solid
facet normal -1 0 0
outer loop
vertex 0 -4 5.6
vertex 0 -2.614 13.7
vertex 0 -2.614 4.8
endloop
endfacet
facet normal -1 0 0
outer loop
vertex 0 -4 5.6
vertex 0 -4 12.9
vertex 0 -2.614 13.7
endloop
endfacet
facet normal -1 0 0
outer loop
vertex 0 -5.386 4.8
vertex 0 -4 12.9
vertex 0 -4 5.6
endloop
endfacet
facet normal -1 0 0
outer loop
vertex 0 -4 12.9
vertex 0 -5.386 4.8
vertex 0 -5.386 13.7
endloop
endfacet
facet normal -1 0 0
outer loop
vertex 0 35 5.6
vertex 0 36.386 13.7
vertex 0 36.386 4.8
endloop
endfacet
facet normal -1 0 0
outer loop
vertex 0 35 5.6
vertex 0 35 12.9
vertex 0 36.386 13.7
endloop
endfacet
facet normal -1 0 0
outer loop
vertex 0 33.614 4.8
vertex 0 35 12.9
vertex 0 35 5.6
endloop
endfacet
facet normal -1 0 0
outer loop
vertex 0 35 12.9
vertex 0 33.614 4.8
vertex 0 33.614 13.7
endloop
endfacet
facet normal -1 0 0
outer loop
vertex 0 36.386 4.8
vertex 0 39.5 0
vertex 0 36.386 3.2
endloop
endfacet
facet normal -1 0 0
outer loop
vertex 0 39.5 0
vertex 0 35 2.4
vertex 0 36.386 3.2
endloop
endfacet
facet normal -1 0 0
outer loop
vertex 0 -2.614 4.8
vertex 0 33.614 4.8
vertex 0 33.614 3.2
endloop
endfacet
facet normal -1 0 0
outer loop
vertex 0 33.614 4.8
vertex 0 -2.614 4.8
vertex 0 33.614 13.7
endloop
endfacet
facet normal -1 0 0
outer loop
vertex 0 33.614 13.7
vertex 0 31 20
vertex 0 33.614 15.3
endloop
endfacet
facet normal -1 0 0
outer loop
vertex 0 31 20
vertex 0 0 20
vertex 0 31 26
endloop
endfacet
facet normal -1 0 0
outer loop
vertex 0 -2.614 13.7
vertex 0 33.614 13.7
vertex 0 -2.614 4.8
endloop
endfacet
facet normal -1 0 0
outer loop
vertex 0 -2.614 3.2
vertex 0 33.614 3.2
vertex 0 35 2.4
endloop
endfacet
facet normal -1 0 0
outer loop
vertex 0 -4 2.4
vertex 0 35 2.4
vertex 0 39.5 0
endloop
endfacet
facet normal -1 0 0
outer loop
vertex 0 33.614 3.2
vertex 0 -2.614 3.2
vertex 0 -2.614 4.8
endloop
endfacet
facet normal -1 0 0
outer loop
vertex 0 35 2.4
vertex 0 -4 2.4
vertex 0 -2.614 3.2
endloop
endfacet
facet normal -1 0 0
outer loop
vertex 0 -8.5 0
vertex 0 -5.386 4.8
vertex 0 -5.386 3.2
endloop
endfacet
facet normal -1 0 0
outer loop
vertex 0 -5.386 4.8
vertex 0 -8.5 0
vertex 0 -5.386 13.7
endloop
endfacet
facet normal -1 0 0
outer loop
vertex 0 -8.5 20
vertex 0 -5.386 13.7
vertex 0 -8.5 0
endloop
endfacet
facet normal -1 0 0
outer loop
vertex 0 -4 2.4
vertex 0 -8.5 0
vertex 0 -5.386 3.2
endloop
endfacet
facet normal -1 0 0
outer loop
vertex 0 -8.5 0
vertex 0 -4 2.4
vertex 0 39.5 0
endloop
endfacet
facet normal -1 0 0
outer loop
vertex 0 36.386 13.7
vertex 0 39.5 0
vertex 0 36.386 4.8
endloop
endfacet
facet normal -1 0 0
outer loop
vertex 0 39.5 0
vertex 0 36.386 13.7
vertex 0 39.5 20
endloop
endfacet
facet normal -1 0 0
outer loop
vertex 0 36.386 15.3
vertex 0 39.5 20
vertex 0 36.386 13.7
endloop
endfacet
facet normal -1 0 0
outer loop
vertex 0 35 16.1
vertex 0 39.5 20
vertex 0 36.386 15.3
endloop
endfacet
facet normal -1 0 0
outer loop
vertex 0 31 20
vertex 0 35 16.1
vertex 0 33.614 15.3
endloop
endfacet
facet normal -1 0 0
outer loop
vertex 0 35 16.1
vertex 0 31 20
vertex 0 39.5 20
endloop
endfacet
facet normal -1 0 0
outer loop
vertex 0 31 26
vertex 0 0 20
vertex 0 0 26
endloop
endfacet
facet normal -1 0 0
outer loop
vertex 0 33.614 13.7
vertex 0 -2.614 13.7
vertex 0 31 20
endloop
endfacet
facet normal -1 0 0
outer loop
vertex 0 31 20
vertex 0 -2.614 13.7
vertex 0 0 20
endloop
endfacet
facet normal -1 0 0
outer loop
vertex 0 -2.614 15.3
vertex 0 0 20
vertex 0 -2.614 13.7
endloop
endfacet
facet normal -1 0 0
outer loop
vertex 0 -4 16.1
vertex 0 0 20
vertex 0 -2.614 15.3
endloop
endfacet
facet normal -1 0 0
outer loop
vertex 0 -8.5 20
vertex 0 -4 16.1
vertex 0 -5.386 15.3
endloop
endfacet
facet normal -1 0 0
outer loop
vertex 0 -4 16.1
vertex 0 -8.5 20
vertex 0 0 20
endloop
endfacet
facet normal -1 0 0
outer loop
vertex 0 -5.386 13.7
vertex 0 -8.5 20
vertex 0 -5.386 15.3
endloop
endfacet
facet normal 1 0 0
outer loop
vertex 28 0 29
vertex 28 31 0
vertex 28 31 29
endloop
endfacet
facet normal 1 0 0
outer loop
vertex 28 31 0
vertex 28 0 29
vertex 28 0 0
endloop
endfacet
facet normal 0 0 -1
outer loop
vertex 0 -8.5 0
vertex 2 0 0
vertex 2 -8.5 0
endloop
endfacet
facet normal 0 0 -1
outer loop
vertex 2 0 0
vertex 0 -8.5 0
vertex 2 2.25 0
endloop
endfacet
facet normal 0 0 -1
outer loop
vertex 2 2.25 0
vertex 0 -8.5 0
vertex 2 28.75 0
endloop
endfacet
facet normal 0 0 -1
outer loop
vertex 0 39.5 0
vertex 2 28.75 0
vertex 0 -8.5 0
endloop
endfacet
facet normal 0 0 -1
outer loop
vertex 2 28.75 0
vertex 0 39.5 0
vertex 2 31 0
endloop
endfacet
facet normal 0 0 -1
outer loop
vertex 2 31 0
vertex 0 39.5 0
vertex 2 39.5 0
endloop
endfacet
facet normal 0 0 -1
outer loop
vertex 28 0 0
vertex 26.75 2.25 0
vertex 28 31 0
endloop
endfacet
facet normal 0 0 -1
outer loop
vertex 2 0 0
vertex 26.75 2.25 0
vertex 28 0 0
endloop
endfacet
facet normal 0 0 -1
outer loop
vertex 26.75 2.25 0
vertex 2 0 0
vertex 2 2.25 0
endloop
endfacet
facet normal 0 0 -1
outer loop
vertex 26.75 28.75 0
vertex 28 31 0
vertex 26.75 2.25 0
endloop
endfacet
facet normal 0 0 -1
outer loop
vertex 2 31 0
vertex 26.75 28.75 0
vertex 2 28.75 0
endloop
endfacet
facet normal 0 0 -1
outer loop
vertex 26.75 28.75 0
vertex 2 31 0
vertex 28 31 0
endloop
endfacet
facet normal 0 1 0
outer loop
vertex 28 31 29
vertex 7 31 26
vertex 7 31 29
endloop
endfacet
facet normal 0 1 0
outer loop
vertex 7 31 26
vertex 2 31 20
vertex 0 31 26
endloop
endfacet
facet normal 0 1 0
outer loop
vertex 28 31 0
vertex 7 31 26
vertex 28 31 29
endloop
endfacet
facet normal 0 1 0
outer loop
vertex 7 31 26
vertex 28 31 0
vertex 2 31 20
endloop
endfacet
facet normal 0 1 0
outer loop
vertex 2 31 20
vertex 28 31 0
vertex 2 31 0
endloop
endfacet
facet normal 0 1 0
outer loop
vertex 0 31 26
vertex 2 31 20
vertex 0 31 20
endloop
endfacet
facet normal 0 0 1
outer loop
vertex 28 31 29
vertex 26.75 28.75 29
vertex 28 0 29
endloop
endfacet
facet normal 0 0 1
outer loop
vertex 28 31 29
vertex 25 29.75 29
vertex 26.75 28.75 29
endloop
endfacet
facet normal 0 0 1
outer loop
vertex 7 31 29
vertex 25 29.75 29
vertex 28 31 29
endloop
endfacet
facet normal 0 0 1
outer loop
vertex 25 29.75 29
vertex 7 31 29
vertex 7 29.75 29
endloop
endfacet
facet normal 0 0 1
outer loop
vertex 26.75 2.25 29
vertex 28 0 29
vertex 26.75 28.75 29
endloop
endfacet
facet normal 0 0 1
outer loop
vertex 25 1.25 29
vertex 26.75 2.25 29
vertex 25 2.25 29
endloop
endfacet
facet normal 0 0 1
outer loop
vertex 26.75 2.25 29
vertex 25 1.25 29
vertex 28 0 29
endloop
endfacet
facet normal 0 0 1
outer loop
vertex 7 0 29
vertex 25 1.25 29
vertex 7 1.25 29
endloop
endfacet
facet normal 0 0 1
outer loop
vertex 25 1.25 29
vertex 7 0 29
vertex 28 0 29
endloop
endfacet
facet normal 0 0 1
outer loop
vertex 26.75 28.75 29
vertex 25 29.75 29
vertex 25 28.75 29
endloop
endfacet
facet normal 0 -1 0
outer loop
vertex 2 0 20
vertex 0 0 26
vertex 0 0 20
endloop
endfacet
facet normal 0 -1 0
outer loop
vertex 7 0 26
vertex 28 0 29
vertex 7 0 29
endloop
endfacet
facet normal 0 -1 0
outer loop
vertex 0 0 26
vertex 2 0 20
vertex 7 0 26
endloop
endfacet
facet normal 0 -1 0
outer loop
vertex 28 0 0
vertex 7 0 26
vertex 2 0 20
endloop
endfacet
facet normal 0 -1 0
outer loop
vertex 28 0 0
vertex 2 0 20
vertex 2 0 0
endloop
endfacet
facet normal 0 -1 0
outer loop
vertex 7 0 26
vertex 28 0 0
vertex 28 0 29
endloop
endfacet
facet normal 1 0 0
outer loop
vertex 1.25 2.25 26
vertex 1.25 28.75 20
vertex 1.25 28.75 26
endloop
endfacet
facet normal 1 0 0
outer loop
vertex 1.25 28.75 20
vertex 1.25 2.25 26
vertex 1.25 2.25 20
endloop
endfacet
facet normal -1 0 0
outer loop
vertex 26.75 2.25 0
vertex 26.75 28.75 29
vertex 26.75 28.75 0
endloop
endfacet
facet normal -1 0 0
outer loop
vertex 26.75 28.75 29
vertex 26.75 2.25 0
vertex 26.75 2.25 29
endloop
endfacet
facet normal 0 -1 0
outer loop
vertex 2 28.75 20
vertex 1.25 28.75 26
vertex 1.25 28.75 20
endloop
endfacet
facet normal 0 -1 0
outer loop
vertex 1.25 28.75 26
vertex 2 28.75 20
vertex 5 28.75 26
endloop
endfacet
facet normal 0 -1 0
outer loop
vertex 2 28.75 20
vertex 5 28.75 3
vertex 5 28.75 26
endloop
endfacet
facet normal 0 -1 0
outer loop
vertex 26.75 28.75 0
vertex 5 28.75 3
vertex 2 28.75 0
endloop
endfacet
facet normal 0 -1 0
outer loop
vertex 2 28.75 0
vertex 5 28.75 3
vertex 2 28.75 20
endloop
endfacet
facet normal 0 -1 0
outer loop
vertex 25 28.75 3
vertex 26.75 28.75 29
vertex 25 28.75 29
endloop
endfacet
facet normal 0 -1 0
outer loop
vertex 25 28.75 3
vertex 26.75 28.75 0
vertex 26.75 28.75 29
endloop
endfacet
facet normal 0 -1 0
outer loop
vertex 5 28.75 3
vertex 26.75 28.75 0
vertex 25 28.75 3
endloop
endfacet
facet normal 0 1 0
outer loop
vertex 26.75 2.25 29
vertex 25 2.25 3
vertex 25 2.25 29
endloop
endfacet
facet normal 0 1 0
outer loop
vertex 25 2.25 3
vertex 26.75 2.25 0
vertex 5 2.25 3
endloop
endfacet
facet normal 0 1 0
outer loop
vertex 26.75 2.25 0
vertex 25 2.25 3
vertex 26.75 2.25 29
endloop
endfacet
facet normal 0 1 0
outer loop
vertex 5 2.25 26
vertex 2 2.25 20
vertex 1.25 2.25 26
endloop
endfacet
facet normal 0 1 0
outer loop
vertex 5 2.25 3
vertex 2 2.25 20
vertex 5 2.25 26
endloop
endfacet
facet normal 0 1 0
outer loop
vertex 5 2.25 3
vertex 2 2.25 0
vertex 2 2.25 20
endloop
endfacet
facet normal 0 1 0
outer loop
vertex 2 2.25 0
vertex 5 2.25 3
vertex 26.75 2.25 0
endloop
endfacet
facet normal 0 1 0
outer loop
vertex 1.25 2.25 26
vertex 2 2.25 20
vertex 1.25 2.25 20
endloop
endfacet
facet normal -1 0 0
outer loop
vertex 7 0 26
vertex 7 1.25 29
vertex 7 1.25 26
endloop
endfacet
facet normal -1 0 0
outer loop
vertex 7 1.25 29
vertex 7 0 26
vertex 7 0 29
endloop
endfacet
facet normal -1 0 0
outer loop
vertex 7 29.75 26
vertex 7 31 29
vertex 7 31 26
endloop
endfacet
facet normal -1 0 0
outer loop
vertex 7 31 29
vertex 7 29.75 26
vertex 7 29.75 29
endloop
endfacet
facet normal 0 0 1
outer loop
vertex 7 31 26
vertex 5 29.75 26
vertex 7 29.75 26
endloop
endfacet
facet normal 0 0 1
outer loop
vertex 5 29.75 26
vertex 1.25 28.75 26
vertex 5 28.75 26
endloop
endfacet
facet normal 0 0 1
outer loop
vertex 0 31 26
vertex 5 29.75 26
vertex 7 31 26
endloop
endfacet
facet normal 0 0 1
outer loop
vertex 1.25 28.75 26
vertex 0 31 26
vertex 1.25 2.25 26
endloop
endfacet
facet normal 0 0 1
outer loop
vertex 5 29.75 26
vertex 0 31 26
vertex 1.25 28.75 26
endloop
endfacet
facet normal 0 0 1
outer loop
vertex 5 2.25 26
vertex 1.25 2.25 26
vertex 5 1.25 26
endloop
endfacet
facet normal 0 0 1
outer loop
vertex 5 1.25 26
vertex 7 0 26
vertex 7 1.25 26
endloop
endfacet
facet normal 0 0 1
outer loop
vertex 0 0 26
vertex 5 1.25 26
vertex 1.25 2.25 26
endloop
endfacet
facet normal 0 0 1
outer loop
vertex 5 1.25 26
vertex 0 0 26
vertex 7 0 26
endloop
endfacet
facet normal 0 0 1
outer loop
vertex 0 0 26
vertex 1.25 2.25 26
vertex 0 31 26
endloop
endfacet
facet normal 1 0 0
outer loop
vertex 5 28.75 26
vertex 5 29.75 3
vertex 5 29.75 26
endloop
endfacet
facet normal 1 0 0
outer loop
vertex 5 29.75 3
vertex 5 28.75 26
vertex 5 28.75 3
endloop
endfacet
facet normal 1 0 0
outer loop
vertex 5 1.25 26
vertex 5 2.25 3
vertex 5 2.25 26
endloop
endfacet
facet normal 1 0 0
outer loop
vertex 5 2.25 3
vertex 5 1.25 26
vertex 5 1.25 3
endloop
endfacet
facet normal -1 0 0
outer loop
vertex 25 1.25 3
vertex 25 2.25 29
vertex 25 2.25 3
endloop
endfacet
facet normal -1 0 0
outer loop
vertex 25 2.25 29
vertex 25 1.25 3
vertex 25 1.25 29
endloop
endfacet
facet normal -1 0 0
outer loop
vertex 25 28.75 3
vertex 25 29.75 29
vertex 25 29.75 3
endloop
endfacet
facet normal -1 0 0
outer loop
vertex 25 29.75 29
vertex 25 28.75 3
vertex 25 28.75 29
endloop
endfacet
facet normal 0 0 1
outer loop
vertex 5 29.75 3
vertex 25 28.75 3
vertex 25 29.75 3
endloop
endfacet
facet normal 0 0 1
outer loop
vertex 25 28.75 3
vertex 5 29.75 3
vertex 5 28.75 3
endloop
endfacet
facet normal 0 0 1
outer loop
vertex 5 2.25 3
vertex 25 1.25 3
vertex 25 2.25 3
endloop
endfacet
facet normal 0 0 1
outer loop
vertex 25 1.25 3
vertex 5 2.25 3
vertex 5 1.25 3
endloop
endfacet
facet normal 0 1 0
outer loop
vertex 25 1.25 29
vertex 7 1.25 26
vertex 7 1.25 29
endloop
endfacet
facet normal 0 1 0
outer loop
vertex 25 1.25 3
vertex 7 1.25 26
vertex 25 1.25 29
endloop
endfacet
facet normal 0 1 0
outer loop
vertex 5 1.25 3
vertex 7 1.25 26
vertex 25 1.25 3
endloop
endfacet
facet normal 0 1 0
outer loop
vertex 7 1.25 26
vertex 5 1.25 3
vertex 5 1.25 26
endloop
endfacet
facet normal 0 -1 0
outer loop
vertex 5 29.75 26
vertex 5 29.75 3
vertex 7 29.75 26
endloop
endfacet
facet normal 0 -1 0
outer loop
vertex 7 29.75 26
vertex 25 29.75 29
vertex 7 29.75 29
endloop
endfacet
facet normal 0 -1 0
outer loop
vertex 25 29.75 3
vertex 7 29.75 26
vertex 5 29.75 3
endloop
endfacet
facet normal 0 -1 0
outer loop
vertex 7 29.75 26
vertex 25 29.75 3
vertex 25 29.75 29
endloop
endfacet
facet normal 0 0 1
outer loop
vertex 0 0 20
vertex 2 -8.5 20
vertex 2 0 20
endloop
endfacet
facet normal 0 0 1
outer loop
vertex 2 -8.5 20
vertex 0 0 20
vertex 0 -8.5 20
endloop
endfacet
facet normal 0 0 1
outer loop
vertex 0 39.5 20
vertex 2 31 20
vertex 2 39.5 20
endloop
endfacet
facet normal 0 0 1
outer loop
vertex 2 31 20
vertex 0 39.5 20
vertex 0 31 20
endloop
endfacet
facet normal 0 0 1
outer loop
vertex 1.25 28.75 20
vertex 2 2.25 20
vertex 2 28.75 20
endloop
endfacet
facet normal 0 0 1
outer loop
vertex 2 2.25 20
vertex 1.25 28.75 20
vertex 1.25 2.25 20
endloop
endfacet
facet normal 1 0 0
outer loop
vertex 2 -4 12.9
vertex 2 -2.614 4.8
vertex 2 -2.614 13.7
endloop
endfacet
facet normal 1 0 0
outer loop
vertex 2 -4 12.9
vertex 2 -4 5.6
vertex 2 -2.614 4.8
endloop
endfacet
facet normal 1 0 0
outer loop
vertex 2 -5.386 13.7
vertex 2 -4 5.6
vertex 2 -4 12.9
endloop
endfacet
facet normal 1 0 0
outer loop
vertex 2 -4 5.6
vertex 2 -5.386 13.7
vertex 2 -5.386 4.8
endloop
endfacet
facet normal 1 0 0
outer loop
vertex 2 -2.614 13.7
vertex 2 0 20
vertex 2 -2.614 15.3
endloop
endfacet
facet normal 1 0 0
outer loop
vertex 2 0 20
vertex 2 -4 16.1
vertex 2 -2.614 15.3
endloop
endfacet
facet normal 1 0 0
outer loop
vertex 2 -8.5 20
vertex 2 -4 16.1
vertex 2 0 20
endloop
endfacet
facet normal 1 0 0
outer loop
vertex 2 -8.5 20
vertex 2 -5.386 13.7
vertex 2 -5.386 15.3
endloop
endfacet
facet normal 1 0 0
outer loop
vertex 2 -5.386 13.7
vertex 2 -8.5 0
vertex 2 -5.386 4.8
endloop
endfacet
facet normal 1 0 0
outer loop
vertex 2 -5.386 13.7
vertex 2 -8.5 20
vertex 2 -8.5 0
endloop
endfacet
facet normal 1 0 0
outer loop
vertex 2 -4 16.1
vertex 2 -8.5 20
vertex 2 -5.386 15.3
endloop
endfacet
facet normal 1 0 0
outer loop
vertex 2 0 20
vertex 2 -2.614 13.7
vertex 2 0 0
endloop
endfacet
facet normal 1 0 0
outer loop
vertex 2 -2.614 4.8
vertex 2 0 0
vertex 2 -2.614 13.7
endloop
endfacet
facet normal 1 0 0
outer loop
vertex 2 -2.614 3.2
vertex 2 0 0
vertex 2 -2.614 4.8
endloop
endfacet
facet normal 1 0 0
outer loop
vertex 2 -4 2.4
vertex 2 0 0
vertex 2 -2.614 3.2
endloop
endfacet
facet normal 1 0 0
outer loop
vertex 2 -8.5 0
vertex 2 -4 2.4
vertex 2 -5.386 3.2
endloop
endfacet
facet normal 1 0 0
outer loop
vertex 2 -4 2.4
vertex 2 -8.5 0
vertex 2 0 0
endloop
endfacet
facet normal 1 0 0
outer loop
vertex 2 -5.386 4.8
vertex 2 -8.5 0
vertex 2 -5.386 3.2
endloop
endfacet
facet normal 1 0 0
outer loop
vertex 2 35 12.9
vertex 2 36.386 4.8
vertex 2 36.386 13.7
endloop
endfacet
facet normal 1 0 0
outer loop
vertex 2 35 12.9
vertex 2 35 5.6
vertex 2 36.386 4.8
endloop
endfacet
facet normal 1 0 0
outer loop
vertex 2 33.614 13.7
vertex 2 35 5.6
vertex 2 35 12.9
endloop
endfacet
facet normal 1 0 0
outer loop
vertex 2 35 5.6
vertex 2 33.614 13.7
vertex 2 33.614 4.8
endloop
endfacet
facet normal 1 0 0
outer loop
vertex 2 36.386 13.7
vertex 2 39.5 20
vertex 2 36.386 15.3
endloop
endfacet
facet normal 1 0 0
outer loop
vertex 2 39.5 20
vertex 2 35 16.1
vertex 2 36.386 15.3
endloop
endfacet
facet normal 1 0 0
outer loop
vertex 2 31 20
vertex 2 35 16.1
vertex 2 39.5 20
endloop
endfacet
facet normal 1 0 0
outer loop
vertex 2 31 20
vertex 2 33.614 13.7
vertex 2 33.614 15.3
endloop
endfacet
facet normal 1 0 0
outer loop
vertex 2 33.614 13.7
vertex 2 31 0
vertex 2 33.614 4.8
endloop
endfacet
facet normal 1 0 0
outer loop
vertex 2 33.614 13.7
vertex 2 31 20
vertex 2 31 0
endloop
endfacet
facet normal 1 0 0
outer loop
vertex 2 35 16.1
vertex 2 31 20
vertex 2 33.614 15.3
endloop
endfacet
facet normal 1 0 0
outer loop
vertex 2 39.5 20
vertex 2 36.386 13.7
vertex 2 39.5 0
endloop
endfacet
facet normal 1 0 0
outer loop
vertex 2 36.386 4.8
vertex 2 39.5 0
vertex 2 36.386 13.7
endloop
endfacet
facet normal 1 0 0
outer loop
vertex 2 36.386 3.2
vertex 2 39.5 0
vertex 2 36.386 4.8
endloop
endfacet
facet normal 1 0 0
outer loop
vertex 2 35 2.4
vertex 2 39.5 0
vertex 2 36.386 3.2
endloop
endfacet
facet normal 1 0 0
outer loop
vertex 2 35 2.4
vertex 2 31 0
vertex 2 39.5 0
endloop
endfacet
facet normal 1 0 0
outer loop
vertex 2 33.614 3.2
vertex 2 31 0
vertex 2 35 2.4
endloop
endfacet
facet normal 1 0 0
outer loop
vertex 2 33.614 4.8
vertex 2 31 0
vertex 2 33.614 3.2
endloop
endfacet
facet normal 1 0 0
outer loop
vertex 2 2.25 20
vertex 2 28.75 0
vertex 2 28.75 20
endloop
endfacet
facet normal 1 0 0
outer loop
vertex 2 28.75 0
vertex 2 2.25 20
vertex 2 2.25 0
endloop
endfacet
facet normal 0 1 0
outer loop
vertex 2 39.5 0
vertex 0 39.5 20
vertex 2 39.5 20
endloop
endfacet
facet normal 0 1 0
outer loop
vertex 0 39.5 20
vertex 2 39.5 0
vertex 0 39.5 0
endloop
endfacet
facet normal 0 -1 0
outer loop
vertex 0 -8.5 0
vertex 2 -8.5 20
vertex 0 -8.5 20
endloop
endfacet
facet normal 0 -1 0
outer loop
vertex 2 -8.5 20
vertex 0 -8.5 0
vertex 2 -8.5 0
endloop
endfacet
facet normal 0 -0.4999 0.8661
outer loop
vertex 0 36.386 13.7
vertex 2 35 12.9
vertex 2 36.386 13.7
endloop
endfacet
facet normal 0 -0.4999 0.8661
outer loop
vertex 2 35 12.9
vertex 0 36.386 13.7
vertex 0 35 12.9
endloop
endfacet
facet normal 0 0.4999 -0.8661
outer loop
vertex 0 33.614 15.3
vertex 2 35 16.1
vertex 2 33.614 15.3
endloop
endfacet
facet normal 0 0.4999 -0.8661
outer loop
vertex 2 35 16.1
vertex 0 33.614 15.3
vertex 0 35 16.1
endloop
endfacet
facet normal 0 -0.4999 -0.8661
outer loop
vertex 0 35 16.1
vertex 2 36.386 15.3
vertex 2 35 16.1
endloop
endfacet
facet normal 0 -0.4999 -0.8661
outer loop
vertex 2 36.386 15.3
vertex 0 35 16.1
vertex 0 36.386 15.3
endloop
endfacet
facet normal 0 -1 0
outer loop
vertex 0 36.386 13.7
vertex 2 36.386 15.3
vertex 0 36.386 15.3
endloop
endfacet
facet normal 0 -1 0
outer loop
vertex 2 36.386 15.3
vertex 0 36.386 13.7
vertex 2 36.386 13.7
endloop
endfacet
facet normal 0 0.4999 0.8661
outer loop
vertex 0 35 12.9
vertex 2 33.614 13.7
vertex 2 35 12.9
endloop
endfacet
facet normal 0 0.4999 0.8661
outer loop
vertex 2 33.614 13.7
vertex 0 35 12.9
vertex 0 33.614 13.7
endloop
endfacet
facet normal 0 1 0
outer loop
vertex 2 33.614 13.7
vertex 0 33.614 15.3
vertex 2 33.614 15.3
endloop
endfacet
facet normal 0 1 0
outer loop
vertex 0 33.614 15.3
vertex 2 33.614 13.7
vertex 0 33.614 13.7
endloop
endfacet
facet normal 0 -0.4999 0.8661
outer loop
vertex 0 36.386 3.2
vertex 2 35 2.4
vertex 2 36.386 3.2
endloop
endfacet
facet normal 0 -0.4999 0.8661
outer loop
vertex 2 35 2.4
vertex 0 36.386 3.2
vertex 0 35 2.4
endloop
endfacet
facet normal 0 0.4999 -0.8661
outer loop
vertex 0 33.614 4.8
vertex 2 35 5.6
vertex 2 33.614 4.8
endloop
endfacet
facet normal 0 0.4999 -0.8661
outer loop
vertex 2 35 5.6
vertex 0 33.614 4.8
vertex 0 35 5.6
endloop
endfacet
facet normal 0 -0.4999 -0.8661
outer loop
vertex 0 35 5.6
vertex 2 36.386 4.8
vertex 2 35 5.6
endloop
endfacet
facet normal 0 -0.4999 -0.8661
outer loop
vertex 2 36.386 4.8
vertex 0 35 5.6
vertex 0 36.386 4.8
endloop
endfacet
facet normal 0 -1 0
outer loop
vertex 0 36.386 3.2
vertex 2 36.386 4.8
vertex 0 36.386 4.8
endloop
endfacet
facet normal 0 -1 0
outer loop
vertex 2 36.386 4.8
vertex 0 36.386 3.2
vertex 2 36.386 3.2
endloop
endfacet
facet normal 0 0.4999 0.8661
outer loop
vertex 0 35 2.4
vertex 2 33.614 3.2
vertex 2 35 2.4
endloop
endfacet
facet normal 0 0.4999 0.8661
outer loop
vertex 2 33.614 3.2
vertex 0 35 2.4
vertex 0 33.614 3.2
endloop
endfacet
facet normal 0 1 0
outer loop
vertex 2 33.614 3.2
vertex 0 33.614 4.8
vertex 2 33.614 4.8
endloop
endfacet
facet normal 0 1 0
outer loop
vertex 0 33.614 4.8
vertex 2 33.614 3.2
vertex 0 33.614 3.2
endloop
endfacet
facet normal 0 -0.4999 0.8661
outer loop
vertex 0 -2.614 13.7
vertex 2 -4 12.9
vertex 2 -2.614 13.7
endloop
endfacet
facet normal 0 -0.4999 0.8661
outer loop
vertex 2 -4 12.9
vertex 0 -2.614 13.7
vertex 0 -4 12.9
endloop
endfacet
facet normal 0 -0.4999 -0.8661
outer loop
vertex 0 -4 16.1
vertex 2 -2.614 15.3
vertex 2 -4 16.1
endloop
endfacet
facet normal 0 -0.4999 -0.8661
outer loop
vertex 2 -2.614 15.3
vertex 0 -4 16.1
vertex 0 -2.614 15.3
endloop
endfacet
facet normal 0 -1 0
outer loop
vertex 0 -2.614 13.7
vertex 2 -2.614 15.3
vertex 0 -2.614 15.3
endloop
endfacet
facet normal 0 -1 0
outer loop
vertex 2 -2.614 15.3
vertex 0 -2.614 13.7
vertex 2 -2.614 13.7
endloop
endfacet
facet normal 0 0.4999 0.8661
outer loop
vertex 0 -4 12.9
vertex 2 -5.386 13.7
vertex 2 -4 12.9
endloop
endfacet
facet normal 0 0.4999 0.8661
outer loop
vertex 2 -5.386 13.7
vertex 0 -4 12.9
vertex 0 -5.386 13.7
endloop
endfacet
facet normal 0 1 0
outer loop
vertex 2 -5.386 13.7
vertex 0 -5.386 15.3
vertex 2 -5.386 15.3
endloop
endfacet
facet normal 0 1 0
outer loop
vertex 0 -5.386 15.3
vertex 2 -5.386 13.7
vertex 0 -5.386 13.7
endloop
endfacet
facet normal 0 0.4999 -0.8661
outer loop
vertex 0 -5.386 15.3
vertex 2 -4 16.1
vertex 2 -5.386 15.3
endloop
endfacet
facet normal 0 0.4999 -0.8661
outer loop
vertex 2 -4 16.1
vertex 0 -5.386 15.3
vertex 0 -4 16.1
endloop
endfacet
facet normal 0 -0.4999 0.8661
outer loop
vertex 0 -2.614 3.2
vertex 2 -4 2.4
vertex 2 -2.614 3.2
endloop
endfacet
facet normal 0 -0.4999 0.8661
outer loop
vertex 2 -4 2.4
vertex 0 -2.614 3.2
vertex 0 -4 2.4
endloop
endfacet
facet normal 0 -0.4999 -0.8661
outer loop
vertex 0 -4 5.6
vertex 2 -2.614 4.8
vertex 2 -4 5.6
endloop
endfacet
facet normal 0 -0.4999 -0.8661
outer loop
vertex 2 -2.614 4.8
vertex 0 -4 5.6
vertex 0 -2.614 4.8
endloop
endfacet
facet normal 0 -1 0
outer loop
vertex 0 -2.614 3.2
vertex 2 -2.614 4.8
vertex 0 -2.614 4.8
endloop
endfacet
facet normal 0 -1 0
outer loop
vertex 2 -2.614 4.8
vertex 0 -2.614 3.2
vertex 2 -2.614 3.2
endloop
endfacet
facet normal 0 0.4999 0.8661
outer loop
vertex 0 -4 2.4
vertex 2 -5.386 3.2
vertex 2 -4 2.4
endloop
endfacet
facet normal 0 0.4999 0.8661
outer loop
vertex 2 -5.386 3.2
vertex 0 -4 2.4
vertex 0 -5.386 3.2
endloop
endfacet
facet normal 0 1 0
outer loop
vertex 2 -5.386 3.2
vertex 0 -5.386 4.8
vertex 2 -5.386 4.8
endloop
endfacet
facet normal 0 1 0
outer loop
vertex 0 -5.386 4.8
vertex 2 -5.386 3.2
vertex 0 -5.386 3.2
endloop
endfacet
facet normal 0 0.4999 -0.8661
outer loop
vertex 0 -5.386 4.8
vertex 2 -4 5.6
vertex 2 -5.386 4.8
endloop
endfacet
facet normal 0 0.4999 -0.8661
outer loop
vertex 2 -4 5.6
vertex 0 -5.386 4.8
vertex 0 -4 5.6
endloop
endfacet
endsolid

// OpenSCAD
difference(){
linear_extrude(height = 29, center = false, convexity = 10, twist = 0)
 polygon( points=[
[0,0],
[0,31],
[28,31],
[28,0]
]);
linear_extrude(height = 29, center = false, convexity = 10, twist = 0)
 polygon( points=[
[1.25,2.25],
[1.25,28.75],
[26.75,28.75],
[26.75,2.25]
]);
translate ([0,0,26])cube ([7,31,5]); 
translate ([5,1.25,3])cube ([20,28.5,29]); 
};
difference(){
translate ([0,-8.5,0])cube ([2,48,20]); 
rotate([0,90,0])translate ([-14.5,35,0])cylinder (r1 = 1.6, r2 = 1.6, h= 3);
rotate([0,90,0])translate ([-4   ,35,0])cylinder (r1 = 1.6, r2 = 1.6, h= 3);
rotate([0,90,0])translate ([-14.5,-4,0])cylinder (r1 = 1.6, r2 = 1.6, h= 3);
rotate([0,90,0])translate ([-4   ,-4,0])cylinder (r1 = 1.6, r2 = 1.6, h= 3);
};
